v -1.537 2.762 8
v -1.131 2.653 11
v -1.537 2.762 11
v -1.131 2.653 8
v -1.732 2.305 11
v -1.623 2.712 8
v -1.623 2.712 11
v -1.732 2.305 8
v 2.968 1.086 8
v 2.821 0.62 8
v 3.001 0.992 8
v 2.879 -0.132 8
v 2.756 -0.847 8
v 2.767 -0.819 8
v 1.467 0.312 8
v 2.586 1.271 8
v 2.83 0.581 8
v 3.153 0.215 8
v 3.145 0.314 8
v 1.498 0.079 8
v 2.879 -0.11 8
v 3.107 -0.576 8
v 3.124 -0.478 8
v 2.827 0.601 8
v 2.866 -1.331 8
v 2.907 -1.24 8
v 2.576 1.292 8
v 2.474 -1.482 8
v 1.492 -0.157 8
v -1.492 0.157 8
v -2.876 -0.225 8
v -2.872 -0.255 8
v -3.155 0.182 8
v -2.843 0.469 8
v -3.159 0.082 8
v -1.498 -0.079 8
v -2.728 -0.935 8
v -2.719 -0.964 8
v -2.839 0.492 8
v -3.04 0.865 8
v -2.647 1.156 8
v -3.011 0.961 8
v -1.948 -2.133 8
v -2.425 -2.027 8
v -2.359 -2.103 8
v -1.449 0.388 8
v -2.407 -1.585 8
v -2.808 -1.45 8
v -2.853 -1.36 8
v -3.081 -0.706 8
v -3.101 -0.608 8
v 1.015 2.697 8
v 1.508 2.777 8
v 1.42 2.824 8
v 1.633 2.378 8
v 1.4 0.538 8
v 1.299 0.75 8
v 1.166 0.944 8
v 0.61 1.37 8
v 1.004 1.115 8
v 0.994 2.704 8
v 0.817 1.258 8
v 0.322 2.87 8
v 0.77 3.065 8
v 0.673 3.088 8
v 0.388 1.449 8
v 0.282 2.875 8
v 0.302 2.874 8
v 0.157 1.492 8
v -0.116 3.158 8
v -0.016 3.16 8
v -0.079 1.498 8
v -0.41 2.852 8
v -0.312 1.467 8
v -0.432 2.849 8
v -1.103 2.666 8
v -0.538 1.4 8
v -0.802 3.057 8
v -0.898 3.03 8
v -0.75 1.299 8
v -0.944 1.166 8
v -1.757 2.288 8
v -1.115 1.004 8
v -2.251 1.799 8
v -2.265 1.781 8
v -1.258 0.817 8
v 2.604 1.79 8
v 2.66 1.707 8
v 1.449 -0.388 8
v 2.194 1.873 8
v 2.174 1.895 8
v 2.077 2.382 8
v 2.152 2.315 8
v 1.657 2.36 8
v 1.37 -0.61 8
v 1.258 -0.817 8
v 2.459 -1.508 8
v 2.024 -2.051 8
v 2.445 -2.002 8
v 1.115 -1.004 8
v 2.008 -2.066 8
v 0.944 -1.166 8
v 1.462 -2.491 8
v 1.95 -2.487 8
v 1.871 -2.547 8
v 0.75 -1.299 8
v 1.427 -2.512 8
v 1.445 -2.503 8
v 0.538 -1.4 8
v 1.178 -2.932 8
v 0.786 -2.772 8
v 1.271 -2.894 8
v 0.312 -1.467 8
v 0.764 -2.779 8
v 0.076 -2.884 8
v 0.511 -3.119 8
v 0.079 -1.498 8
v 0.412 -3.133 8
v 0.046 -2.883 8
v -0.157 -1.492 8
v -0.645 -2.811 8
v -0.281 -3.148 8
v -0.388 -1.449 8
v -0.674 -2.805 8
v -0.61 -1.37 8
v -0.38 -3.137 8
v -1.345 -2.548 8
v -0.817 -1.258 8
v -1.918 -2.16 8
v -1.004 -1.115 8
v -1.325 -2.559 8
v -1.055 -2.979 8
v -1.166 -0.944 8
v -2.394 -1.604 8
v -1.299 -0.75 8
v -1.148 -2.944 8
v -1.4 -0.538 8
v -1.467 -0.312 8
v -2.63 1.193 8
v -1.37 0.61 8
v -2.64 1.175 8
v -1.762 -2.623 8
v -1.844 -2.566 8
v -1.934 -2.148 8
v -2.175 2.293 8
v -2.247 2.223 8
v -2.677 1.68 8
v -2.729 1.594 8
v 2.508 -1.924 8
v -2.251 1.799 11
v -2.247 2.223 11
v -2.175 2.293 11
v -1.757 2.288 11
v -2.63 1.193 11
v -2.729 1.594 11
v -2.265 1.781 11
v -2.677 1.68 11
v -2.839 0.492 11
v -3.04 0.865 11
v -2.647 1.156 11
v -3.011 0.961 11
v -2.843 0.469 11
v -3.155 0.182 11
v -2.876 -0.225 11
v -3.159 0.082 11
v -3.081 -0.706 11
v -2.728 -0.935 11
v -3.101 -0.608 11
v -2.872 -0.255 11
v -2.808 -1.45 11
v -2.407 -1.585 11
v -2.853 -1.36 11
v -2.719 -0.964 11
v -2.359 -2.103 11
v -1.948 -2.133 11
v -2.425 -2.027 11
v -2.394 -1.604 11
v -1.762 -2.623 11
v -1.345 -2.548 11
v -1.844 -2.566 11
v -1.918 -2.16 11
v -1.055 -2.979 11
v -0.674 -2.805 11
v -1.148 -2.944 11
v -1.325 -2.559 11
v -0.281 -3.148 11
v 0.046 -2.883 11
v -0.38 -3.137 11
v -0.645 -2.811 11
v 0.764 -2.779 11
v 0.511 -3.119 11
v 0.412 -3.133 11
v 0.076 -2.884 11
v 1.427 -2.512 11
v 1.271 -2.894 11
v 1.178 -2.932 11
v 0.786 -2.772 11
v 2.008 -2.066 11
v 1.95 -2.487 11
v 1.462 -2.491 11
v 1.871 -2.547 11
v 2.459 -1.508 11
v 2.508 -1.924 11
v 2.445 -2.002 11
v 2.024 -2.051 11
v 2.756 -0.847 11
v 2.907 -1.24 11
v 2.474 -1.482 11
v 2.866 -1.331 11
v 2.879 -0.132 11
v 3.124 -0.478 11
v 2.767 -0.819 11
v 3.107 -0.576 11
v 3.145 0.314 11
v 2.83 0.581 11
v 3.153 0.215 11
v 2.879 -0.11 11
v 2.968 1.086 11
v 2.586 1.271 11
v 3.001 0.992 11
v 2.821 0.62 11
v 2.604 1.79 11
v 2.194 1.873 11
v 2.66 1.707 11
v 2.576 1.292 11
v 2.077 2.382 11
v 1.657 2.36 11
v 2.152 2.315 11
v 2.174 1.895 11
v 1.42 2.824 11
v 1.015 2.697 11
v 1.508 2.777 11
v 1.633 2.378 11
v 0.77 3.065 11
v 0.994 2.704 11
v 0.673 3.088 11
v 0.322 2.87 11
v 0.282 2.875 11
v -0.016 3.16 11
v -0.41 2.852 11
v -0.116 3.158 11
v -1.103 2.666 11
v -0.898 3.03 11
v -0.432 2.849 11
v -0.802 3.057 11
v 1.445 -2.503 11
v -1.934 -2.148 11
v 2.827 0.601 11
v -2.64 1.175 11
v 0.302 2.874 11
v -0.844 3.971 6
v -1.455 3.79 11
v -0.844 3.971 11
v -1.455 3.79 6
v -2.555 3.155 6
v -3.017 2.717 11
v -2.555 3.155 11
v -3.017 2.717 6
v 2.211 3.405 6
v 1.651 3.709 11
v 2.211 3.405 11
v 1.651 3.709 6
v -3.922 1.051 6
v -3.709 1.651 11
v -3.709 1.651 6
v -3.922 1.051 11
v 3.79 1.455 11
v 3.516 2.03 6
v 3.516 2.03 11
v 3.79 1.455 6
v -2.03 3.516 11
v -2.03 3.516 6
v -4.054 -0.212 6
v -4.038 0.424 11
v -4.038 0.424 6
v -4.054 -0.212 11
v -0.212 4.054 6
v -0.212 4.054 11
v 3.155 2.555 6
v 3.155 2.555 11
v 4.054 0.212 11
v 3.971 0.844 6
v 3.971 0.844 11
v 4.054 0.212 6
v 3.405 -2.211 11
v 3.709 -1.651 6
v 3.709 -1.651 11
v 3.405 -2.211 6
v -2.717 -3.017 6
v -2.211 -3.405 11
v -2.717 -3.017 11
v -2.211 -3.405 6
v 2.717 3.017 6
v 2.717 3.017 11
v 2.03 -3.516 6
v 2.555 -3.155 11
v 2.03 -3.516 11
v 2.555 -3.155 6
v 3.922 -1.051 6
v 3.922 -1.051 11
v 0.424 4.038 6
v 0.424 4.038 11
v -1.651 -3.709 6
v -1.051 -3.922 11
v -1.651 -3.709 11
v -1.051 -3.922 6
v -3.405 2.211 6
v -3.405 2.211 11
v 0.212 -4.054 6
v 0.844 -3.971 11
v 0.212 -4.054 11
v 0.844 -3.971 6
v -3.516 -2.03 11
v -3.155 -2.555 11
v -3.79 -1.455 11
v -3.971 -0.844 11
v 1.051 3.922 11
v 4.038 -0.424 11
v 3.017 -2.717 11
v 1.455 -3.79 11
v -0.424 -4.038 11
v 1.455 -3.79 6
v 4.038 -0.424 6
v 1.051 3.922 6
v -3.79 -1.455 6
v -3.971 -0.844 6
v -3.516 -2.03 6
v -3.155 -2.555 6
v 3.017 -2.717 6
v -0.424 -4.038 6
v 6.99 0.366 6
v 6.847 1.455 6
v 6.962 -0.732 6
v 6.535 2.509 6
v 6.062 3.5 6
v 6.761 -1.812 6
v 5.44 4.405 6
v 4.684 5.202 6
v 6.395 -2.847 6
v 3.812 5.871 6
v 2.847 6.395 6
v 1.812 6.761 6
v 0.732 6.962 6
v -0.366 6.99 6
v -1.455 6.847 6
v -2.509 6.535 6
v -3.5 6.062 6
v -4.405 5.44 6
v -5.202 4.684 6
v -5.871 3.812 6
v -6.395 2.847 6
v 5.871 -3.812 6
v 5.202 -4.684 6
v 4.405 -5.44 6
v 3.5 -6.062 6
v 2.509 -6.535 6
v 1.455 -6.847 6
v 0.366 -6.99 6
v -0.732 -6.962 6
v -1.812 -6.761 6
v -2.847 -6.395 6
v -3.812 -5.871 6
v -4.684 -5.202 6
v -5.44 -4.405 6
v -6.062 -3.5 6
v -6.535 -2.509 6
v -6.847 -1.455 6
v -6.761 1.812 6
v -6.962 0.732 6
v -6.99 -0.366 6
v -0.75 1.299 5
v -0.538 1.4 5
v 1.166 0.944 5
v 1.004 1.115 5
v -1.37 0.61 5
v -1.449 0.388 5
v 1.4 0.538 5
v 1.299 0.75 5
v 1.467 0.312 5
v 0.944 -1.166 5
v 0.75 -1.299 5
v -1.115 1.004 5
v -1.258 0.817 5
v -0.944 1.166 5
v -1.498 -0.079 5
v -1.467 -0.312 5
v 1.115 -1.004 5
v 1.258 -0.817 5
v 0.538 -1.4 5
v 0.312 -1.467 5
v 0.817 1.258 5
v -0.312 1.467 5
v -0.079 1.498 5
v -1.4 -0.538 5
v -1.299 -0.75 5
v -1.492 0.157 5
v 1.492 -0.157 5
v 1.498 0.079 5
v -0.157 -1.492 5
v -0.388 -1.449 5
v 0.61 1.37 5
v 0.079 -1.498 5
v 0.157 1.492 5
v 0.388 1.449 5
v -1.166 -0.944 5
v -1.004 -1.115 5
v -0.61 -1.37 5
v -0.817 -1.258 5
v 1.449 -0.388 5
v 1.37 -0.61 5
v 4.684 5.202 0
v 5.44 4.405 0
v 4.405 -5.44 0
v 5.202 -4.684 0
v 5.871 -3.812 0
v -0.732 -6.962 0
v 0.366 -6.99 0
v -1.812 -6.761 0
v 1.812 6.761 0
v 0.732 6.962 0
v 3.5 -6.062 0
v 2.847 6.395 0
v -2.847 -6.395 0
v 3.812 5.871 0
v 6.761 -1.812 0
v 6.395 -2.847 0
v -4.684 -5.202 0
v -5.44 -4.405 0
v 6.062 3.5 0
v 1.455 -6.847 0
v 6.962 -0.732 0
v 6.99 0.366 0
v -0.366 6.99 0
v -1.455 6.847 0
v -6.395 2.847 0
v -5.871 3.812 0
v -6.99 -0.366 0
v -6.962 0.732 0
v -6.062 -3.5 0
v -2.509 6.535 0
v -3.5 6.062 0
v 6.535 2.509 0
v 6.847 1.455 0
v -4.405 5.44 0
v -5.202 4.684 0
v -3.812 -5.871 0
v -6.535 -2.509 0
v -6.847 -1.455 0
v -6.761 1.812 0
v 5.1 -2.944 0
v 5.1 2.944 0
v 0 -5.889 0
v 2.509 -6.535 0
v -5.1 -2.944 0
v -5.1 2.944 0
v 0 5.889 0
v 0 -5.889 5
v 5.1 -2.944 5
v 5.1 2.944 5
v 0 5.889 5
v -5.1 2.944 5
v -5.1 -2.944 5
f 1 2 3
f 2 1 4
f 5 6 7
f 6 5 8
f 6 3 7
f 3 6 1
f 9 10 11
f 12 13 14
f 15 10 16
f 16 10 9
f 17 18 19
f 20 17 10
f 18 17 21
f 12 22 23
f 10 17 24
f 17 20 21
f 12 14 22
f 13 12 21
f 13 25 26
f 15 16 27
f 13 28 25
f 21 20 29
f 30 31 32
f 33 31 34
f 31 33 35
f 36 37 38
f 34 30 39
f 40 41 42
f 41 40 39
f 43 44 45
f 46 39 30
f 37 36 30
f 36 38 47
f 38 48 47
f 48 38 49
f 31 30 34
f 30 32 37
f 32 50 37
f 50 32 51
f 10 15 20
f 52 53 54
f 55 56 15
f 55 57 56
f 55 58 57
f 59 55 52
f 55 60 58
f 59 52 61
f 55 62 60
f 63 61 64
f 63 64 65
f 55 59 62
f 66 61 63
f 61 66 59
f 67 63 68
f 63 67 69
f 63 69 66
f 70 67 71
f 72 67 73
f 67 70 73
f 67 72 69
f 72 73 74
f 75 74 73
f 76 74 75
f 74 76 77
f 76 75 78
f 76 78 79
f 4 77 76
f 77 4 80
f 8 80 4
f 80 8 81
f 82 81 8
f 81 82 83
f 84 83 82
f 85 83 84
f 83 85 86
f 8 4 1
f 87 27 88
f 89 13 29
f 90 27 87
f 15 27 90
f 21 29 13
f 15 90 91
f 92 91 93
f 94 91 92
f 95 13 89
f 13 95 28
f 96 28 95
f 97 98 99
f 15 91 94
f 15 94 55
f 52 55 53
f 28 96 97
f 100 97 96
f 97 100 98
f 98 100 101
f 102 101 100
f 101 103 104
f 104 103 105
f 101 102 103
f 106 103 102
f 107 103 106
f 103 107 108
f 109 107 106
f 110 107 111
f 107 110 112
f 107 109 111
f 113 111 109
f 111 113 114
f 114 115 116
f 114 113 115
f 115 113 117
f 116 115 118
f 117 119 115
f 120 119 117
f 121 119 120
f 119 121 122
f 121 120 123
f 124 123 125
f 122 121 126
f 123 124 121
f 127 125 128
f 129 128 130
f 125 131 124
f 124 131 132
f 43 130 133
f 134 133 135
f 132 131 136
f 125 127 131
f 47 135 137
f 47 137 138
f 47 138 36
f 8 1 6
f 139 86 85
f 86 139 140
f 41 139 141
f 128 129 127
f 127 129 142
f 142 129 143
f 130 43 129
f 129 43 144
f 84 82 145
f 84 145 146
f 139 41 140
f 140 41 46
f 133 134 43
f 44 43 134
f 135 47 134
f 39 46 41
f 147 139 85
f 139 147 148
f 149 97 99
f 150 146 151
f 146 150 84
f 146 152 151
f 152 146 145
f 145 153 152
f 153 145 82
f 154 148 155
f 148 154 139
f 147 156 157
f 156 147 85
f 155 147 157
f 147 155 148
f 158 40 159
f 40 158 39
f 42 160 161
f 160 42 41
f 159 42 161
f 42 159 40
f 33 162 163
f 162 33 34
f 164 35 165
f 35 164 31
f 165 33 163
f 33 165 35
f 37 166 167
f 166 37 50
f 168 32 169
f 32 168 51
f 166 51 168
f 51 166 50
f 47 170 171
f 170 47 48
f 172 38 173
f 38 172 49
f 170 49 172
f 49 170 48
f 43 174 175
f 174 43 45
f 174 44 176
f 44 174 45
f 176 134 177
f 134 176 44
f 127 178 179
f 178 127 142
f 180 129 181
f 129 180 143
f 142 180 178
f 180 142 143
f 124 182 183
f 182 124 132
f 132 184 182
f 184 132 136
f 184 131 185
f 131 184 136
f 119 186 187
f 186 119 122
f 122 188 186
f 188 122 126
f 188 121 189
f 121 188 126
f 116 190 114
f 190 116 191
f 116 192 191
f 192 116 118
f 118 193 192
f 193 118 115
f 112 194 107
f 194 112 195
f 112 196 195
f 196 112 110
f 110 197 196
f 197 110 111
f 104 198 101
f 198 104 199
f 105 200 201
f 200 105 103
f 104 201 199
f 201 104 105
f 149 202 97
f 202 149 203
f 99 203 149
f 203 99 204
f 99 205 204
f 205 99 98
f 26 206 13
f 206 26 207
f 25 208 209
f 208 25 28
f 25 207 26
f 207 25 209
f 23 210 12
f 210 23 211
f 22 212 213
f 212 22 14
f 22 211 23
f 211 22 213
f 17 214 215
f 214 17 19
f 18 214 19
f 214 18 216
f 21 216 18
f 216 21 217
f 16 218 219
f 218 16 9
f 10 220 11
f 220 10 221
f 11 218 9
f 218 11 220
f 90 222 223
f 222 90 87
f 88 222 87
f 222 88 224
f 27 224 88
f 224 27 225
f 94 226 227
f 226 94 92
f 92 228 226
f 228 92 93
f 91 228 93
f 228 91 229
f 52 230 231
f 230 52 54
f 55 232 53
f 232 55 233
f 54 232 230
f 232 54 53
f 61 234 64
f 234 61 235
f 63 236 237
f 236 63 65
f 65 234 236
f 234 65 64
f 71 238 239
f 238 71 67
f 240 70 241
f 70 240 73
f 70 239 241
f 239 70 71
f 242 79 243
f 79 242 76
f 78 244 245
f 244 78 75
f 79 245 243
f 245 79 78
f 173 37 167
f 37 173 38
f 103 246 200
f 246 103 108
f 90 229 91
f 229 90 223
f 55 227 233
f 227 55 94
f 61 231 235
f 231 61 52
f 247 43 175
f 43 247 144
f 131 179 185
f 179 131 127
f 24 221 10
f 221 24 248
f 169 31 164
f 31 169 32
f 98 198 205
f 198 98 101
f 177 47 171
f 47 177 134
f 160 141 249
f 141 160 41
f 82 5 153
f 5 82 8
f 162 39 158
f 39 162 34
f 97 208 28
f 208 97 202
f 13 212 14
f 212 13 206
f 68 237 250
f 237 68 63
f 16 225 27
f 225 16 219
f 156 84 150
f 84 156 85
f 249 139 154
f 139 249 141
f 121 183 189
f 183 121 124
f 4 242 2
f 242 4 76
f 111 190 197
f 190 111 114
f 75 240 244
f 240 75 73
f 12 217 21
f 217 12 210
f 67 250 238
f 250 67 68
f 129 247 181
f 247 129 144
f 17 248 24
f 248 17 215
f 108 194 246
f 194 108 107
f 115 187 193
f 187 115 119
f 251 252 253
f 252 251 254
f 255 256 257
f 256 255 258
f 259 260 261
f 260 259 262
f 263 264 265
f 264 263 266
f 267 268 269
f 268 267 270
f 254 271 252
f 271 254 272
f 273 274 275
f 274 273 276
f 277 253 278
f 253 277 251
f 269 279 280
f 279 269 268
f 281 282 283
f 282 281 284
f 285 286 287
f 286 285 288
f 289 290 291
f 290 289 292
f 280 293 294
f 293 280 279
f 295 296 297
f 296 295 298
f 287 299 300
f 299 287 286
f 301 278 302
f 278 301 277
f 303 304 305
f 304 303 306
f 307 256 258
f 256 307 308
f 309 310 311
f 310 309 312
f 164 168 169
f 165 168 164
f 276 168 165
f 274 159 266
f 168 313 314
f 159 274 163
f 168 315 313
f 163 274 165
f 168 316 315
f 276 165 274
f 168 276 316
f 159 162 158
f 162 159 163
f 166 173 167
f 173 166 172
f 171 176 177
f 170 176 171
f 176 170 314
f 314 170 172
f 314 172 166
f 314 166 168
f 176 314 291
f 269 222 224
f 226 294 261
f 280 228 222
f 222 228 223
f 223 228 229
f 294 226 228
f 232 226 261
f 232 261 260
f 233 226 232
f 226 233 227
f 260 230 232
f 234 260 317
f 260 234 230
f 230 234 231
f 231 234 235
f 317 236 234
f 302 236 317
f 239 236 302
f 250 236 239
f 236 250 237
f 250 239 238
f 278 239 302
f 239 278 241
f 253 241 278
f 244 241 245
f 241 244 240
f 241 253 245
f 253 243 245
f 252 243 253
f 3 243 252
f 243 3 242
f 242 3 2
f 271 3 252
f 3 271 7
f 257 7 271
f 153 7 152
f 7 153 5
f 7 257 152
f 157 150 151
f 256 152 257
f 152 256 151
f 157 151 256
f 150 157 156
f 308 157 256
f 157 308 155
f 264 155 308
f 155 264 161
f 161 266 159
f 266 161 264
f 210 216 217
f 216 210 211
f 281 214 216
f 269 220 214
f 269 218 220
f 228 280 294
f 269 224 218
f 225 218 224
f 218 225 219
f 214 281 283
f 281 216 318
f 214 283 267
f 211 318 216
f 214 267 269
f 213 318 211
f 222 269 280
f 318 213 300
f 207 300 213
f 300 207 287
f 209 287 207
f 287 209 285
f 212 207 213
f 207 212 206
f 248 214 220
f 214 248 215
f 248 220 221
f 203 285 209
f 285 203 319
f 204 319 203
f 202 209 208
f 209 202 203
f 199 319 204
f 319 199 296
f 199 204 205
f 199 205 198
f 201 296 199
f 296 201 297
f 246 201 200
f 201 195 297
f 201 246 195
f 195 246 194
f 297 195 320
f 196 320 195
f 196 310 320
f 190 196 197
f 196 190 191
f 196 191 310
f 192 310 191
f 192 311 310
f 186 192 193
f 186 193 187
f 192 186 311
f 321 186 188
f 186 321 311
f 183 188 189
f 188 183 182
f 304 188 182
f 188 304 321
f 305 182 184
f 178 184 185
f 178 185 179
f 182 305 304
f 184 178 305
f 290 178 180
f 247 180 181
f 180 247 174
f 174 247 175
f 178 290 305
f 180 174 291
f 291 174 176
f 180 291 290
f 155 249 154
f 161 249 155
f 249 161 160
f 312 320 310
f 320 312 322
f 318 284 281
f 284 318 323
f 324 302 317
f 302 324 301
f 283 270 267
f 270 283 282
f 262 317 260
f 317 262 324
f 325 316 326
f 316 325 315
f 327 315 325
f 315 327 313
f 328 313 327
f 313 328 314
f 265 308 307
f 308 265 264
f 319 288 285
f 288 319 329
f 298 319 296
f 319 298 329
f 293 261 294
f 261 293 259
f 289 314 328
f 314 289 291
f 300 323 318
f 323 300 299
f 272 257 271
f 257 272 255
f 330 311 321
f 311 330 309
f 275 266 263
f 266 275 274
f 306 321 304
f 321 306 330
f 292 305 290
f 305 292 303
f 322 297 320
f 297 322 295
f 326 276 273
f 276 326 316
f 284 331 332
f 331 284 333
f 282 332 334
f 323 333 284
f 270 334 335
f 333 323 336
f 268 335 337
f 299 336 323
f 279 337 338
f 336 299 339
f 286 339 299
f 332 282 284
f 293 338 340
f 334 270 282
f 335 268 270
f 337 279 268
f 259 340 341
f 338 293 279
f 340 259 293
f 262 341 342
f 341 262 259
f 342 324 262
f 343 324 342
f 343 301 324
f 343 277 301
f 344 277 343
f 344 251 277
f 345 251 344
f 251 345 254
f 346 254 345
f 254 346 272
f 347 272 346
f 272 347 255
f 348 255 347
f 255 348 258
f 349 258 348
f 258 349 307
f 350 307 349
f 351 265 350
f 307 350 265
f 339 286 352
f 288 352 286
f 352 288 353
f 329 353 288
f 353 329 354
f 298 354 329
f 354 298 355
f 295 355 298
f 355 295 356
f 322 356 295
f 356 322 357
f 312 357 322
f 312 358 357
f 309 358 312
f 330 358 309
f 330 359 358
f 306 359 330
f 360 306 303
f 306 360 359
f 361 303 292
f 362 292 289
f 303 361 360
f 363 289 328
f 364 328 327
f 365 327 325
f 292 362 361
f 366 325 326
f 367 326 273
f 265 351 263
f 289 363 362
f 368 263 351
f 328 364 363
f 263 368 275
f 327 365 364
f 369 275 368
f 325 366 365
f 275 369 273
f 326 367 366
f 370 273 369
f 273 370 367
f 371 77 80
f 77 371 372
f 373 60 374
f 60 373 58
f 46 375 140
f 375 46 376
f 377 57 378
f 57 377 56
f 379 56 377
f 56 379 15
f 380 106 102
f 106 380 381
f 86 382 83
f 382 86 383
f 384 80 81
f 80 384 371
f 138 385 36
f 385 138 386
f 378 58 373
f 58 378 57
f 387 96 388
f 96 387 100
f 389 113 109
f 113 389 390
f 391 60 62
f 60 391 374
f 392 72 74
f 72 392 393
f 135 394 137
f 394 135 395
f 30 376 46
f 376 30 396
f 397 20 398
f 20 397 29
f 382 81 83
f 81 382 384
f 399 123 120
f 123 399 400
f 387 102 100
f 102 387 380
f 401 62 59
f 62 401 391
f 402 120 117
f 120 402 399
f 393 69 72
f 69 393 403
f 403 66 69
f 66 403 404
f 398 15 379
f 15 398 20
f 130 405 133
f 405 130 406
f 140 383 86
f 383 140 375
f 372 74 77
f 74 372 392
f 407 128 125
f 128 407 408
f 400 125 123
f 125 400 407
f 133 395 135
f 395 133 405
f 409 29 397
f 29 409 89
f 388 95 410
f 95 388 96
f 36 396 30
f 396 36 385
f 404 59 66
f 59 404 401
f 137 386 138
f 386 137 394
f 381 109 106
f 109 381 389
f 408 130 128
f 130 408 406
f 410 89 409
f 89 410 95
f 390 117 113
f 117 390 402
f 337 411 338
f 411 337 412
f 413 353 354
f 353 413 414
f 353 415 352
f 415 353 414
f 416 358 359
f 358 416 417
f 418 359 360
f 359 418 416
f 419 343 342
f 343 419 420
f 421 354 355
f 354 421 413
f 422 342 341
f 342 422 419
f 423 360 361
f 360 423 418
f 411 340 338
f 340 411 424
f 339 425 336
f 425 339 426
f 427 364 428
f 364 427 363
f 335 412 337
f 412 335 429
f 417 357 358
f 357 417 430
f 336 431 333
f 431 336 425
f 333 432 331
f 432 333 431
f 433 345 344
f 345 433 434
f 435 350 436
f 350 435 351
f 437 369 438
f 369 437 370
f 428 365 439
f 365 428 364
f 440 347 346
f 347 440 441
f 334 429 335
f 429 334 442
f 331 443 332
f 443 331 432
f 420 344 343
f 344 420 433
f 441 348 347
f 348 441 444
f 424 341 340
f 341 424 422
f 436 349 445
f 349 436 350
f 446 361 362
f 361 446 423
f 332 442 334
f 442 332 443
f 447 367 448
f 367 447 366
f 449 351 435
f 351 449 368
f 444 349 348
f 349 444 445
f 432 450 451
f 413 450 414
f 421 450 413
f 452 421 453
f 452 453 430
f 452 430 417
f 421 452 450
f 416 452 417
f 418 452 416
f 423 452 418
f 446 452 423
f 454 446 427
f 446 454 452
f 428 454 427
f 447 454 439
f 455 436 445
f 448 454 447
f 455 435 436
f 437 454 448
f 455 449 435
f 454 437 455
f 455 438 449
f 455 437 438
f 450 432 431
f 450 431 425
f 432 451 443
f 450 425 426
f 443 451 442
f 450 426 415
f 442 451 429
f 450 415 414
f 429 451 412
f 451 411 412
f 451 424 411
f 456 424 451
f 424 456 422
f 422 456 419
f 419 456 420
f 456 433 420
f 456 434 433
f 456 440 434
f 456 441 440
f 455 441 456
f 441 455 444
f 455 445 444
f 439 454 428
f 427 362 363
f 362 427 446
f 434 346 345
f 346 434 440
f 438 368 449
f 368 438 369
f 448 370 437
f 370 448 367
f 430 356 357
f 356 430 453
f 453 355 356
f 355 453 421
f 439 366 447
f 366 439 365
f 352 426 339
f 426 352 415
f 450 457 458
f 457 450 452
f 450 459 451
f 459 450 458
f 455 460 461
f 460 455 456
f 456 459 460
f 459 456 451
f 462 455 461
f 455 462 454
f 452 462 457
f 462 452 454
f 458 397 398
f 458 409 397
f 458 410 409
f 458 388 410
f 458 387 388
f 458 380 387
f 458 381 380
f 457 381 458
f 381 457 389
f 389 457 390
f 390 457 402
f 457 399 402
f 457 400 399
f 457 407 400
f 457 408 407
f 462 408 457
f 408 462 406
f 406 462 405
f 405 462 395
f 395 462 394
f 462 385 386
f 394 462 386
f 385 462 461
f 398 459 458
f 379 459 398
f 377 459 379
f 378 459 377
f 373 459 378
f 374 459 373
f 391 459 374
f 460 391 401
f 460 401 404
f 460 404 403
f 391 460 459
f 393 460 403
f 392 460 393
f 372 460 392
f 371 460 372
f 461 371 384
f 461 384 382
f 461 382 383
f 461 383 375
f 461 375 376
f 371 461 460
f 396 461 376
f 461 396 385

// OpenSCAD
/**
    Parametric servo arm generator for OpenScad

    Forked from 2012 Charles Rincheval.  All rights reserved.

    This library is free software; you can redistribute it and/or
    modify it under the terms of the GNU Lesser General Public
    License as published by the Free Software Foundation; either
    version 2.1 of the License, or (at your option) any later version.

    This library is distributed in the hope that it will be useful,
    but WITHOUT ANY WARRANTY; without even the implied warranty of
    MERCHANTABILITY or FITNESS FOR A PARTICULAR PURPOSE.  See the GNU
    Lesser General Public License for more details.

    You should have received a copy of the GNU Lesser General Public
    License along with this library; if not, write to the Free Software
    Foundation, Inc., 51 Franklin St, Fifth Floor, Boston, MA  02110-1301  USA

*/

// Which Spline would you like to see?
// spline_type = 1; // [1:"Hitec C1-24T",2:"Hitec D1-15T",3:"Futaba 1F-15",4:"Futaba 2F-21T (9g?)",5:"Futaba 3F-25T]";
// Spline Size
spline_type = 1; // [1:Hitec C1-24T, 2:Hitec D1-15T, 3:Futaba 1F-15, 4:Futaba 2F-21T (9g?), 5:Futaba 3F-25T, 6:Actobotics Horn(Hitec), 7:Actobotics Horn(Futaba), 8:Tetrix Horn(Hitec), 9:Tetrix Horn(Futaba) ]

arm_length = 20;

arm_count = 1; // [1,2,3,4,5,6,7,8]

arm_screw_diameter = 2.0;

base_thickness = 2.0;

/**
    Clear between arm head and servo head
    With PLA material, use clear : 0.3, for ABS, use 0.2
*/
SERVO_HEAD_CLEARANCE = 0.2;


$fn = 40/1;


/**
    Head / Tooth parameters
    http://https://www.servocity.com/servo-spline-info

    First array (head related) :
    0. Head external diameter  (INTERNAL OF TEETH)
    1. Head height
    2. Head thickness
    3. Head screw diameter
    4. Head Base Thickness

    Second array (tooth related) :
    0. Tooth count
    1. Tooth height
    2. Tooth length
    3. Tooth width
*/
/**
   Tooth (ON SERVO)

     |<-w->|
     |_____|___
     /     \  ^h
   _/       \_v
    |<--l-->|

   - tooth height (h)
   - tooth length (l)
   - tooth width (w)

    For a new servo: Seems to work best to first set the tooth height to zero,
     and get the outer diameter snug, then work on the teeth.

   Printed very well on Printrbot Simple Pro  0.3mm nozzle, 0.1 layer PLA

   If you need just the spline, set the arm length, and head base thickness to zero

*/
//------------------------------------------------

HITEC_D1_SPLINE = [
                    [7.6, 5.5, 1.8, 3.4, base_thickness],
                    [15, 0.7, 1.3, 0.2]
                  ];
module servo_hitec_d1(length, count) {
  servo_arm(HITEC_D1_SPLINE, [length, count]);
}
//------------------------------------------------

HITEC_C1_SPLINE = [
                    [5.6, 3.5, 1.6, 2.8, base_thickness],
                    [24, 0.4, 0.7, 0.051]
                  ];
module servo_hitec_c1(length, count) {
  servo_arm(HITEC_C1_SPLINE, [length, count]);
}
//------------------------------------------------

FUTABA_1F_SPLINE = [
                     [4.0, 3.75, 1.1, 2.3, base_thickness],
                     [15, 0.25, 0.6, 0.09]
                   ];
module servo_futaba_1f(length, count) {
    servo_arm(FUTABA_1F_SPLINE, [length, count]);
}
//------------------------------------------------

FUTABA_2F_SPLINE = [
                     [4.90, 3, 1.8, 2.3, base_thickness],
                     [21, 0.57, 0.7, 0.1]
                   ];
module servo_futaba_2f(length, count) {
  servo_arm(FUTABA_2F_SPLINE, [length, count]);
}
//------------------------------------------------

FUTABA_3F_SPLINE = [
                     [5.92, 3, 1.1, 2.5, base_thickness],
                     [25, 0.3, 0.7, 0.1]
                   ];
module servo_futaba_3f(length, count) {
  servo_arm(FUTABA_3F_SPLINE, [length, count]);
}
//------------------------------------------------


HX12K_SPLINE = [
                     [5.92, 3, 1.1, 3, base_thickness],
                     [25, 0.3, 0.7, 0.1]
                   ];
module servo_hx12k(length, count) {
  servo_arm(HX12K_SPLINE, [length, count]);
}
/**
    If you want to support a new servo, juste add a new spline definition array
    and a module named like servo_XXX_YYY where XXX is servo brand and YYY is the
    connection type (3f) or the servo type (s3003)
*/

//    Servo head

module servo_head(params, clear = SERVO_HEAD_CLEARANCE) {

  head = params[0];
  tooth = params[1];

  head_diameter = head[0];
  head_height = head[1];
  head_base = head[4];

  tooth_count = tooth[0];
  tooth_height = tooth[1];
  tooth_length = tooth[2];
  tooth_width = tooth[3];

  //     %cylinder(r = (head_diameter / 2), h = head_height + 1);

  cylinder(r = head_diameter / 2 - tooth_height + 0.03 + clear, h = head_height);

// add teeth
    for (i = [0 : tooth_count]) {
      rotate([0, 0, i * (360 / tooth_count)]) {
        translate([0, head_diameter / 2 - tooth_height + clear, 0]) {
          servo_head_tooth(tooth_length, tooth_width, tooth_height, head_height);
        }
      }
    }
  }


module servo_head_tooth(length, width, height, head_height){

  curvatureAdd = 0.05;
  linear_extrude(height = head_height) {
    polygon([[-length / 2 - curvatureAdd, -curvatureAdd], [-width / 2, height], [width / 2, height], [length / 2 + curvatureAdd, -curvatureAdd]]);  
   }
}
/**
    Servo hold
    - Head / Tooth parameters
    - Arms params (length and count)
*/
module servo_arm(params, arms) {

  head = params[0];
  tooth = params[1];

  head_diameter = head[0];
  head_height = head[1];
  head_thickness = head[2];
  head_screw_diameter = head[3];
  head_base = head[4];

  tooth_length = tooth[2];
  tooth_width = tooth[3];

  arm_length = arms[0];
  arm_count = arms[1];

  /**
      Servo arm
      - length is from center to last hole
  */
  module arm(tooth_length, tooth_width, head_height, hole_count ) {

//    arm_screw_diameter = 2;

    difference() {
      union() {
        hull() {
          cylinder(r = tooth_width / 2, h = head_base);
          translate([0, tooth_length, 0]) {
          cylinder(r = arm_screw_diameter / 2 + 1.5, h = head_base);
//          #cylinder(r = tooth_width / 3, h = head_base);
              
          } 
        }

      }

      // Hole
//      for (i = [0 : hole_count - 1]) {
        //translate([0, length - (length / hole_count * i), -1]) {
        translate([0, tooth_length , -1]) {
          cylinder(r = arm_screw_diameter / 2, h = 10);
        }
//      }

      translate([0, 0, -0.001])cylinder(r = head_screw_diameter / 2, h = 10);
    }



  }

  arm_thickness = head_thickness;

  // Arm
  difference() {   // spline hub
    union(){
      for (j = [0 : arm_count - 1]) {
        rotate([0, 0, j * (360 / arm_count)]) {
          arm(arm_length, head_diameter + arm_thickness * 2, head_height, 1);
            hull() {                  // cross support
              translate([0 , head_diameter/2, 0])
              cylinder(r = head_base / 2, h = head_base + head_height);
              translate([0 , max(arm_length - 4,0), 0])
              cylinder(r = head_base / 2, h = head_base);
            } 
         }
       }
        
       cylinder(r = head_diameter / 2 + head_thickness, h = head_height + head_base );
     }
    
     translate([0, 0, -0.001]) 
     cylinder(r = head_screw_diameter / 2, h = 10);  // hole
     translate([0, 0, head_base + 0.0001])
     servo_head(params); // teeth

  }

     if (spline_type >= 6 ){       // servo horns for actobotics,tetrix
         difference(){
              rad=13.5;
              if (spline_type >= 8) {
                  cylinder(r=11.5,h=head_base);}
              else {
                  cylinder(r=13.5,h=head_base);}
                      
                 for (j = [0 : arm_count - 1]) {
                     rotate([0, 0, j * (360 / arm_count)])
                     translate([0, arm_length , -1]) 
                     cylinder(r = 2.05 , h = 10);
//                     cylinder(r = arm_screw_diameter / 2 , h = 10);
                         }
         
         }
         }

 
}


//print_part();

module print_part() {
	if (spline_type == 1)  {
		servo_hitec_c1 (arm_length, arm_count);
	} else if (spline_type  == 2) {
		servo_hitec_d1 (arm_length, arm_count);
	} else if (spline_type  == 3)  {
		servo_futaba_1f(arm_length, arm_count);
	} else if (spline_type  == 4) {
		servo_futaba_2f(arm_length, arm_count);
	} else if (spline_type  == 5) {
		servo_futaba_3f(arm_length, arm_count);
	} else if (spline_type  == 6) {
		servo_hitec_c1 (0.770*25.4/2, 8);
	} else if (spline_type  == 7) {
		servo_futaba_3f(0.770*25.4/2, 8);
	} else if (spline_type  == 8) {
		servo_hitec_c1 (16/2, 8);
	} else if (spline_type  == 9) {
		servo_futaba_3f(16/2, 8);
	}
}
/*
translate([00,0,0]) servo_futaba_1f(10, 1);
translate([10,0,0]) servo_futaba_2f(10, 1);
translate([0,-30,0]) servo_futaba_3f(20, 4);
translate([20,0,0]) servo_hitec_c1 (30, 1);
translate([32,0,0]) servo_hitec_d1 (40, 2);
*/

rotate(30, [0,0,1]) translate([0,0,6]) {
servo_hx12k(0,0);
/*
translate([0,0,-8]) cylinder(10,4/2,4/2);
translate([0,0,-3]) cube([1,7,10], center=true);
*/
difference() {
translate([0,0,-6]) cylinder(r=14/2,h=6);
translate([0,0,-11]) cylinder(r=5/cos(30)*1.02, h=10, $fn=6);
translate([0,0,-2]) cylinder(r=3/2, h=5);
}
}
